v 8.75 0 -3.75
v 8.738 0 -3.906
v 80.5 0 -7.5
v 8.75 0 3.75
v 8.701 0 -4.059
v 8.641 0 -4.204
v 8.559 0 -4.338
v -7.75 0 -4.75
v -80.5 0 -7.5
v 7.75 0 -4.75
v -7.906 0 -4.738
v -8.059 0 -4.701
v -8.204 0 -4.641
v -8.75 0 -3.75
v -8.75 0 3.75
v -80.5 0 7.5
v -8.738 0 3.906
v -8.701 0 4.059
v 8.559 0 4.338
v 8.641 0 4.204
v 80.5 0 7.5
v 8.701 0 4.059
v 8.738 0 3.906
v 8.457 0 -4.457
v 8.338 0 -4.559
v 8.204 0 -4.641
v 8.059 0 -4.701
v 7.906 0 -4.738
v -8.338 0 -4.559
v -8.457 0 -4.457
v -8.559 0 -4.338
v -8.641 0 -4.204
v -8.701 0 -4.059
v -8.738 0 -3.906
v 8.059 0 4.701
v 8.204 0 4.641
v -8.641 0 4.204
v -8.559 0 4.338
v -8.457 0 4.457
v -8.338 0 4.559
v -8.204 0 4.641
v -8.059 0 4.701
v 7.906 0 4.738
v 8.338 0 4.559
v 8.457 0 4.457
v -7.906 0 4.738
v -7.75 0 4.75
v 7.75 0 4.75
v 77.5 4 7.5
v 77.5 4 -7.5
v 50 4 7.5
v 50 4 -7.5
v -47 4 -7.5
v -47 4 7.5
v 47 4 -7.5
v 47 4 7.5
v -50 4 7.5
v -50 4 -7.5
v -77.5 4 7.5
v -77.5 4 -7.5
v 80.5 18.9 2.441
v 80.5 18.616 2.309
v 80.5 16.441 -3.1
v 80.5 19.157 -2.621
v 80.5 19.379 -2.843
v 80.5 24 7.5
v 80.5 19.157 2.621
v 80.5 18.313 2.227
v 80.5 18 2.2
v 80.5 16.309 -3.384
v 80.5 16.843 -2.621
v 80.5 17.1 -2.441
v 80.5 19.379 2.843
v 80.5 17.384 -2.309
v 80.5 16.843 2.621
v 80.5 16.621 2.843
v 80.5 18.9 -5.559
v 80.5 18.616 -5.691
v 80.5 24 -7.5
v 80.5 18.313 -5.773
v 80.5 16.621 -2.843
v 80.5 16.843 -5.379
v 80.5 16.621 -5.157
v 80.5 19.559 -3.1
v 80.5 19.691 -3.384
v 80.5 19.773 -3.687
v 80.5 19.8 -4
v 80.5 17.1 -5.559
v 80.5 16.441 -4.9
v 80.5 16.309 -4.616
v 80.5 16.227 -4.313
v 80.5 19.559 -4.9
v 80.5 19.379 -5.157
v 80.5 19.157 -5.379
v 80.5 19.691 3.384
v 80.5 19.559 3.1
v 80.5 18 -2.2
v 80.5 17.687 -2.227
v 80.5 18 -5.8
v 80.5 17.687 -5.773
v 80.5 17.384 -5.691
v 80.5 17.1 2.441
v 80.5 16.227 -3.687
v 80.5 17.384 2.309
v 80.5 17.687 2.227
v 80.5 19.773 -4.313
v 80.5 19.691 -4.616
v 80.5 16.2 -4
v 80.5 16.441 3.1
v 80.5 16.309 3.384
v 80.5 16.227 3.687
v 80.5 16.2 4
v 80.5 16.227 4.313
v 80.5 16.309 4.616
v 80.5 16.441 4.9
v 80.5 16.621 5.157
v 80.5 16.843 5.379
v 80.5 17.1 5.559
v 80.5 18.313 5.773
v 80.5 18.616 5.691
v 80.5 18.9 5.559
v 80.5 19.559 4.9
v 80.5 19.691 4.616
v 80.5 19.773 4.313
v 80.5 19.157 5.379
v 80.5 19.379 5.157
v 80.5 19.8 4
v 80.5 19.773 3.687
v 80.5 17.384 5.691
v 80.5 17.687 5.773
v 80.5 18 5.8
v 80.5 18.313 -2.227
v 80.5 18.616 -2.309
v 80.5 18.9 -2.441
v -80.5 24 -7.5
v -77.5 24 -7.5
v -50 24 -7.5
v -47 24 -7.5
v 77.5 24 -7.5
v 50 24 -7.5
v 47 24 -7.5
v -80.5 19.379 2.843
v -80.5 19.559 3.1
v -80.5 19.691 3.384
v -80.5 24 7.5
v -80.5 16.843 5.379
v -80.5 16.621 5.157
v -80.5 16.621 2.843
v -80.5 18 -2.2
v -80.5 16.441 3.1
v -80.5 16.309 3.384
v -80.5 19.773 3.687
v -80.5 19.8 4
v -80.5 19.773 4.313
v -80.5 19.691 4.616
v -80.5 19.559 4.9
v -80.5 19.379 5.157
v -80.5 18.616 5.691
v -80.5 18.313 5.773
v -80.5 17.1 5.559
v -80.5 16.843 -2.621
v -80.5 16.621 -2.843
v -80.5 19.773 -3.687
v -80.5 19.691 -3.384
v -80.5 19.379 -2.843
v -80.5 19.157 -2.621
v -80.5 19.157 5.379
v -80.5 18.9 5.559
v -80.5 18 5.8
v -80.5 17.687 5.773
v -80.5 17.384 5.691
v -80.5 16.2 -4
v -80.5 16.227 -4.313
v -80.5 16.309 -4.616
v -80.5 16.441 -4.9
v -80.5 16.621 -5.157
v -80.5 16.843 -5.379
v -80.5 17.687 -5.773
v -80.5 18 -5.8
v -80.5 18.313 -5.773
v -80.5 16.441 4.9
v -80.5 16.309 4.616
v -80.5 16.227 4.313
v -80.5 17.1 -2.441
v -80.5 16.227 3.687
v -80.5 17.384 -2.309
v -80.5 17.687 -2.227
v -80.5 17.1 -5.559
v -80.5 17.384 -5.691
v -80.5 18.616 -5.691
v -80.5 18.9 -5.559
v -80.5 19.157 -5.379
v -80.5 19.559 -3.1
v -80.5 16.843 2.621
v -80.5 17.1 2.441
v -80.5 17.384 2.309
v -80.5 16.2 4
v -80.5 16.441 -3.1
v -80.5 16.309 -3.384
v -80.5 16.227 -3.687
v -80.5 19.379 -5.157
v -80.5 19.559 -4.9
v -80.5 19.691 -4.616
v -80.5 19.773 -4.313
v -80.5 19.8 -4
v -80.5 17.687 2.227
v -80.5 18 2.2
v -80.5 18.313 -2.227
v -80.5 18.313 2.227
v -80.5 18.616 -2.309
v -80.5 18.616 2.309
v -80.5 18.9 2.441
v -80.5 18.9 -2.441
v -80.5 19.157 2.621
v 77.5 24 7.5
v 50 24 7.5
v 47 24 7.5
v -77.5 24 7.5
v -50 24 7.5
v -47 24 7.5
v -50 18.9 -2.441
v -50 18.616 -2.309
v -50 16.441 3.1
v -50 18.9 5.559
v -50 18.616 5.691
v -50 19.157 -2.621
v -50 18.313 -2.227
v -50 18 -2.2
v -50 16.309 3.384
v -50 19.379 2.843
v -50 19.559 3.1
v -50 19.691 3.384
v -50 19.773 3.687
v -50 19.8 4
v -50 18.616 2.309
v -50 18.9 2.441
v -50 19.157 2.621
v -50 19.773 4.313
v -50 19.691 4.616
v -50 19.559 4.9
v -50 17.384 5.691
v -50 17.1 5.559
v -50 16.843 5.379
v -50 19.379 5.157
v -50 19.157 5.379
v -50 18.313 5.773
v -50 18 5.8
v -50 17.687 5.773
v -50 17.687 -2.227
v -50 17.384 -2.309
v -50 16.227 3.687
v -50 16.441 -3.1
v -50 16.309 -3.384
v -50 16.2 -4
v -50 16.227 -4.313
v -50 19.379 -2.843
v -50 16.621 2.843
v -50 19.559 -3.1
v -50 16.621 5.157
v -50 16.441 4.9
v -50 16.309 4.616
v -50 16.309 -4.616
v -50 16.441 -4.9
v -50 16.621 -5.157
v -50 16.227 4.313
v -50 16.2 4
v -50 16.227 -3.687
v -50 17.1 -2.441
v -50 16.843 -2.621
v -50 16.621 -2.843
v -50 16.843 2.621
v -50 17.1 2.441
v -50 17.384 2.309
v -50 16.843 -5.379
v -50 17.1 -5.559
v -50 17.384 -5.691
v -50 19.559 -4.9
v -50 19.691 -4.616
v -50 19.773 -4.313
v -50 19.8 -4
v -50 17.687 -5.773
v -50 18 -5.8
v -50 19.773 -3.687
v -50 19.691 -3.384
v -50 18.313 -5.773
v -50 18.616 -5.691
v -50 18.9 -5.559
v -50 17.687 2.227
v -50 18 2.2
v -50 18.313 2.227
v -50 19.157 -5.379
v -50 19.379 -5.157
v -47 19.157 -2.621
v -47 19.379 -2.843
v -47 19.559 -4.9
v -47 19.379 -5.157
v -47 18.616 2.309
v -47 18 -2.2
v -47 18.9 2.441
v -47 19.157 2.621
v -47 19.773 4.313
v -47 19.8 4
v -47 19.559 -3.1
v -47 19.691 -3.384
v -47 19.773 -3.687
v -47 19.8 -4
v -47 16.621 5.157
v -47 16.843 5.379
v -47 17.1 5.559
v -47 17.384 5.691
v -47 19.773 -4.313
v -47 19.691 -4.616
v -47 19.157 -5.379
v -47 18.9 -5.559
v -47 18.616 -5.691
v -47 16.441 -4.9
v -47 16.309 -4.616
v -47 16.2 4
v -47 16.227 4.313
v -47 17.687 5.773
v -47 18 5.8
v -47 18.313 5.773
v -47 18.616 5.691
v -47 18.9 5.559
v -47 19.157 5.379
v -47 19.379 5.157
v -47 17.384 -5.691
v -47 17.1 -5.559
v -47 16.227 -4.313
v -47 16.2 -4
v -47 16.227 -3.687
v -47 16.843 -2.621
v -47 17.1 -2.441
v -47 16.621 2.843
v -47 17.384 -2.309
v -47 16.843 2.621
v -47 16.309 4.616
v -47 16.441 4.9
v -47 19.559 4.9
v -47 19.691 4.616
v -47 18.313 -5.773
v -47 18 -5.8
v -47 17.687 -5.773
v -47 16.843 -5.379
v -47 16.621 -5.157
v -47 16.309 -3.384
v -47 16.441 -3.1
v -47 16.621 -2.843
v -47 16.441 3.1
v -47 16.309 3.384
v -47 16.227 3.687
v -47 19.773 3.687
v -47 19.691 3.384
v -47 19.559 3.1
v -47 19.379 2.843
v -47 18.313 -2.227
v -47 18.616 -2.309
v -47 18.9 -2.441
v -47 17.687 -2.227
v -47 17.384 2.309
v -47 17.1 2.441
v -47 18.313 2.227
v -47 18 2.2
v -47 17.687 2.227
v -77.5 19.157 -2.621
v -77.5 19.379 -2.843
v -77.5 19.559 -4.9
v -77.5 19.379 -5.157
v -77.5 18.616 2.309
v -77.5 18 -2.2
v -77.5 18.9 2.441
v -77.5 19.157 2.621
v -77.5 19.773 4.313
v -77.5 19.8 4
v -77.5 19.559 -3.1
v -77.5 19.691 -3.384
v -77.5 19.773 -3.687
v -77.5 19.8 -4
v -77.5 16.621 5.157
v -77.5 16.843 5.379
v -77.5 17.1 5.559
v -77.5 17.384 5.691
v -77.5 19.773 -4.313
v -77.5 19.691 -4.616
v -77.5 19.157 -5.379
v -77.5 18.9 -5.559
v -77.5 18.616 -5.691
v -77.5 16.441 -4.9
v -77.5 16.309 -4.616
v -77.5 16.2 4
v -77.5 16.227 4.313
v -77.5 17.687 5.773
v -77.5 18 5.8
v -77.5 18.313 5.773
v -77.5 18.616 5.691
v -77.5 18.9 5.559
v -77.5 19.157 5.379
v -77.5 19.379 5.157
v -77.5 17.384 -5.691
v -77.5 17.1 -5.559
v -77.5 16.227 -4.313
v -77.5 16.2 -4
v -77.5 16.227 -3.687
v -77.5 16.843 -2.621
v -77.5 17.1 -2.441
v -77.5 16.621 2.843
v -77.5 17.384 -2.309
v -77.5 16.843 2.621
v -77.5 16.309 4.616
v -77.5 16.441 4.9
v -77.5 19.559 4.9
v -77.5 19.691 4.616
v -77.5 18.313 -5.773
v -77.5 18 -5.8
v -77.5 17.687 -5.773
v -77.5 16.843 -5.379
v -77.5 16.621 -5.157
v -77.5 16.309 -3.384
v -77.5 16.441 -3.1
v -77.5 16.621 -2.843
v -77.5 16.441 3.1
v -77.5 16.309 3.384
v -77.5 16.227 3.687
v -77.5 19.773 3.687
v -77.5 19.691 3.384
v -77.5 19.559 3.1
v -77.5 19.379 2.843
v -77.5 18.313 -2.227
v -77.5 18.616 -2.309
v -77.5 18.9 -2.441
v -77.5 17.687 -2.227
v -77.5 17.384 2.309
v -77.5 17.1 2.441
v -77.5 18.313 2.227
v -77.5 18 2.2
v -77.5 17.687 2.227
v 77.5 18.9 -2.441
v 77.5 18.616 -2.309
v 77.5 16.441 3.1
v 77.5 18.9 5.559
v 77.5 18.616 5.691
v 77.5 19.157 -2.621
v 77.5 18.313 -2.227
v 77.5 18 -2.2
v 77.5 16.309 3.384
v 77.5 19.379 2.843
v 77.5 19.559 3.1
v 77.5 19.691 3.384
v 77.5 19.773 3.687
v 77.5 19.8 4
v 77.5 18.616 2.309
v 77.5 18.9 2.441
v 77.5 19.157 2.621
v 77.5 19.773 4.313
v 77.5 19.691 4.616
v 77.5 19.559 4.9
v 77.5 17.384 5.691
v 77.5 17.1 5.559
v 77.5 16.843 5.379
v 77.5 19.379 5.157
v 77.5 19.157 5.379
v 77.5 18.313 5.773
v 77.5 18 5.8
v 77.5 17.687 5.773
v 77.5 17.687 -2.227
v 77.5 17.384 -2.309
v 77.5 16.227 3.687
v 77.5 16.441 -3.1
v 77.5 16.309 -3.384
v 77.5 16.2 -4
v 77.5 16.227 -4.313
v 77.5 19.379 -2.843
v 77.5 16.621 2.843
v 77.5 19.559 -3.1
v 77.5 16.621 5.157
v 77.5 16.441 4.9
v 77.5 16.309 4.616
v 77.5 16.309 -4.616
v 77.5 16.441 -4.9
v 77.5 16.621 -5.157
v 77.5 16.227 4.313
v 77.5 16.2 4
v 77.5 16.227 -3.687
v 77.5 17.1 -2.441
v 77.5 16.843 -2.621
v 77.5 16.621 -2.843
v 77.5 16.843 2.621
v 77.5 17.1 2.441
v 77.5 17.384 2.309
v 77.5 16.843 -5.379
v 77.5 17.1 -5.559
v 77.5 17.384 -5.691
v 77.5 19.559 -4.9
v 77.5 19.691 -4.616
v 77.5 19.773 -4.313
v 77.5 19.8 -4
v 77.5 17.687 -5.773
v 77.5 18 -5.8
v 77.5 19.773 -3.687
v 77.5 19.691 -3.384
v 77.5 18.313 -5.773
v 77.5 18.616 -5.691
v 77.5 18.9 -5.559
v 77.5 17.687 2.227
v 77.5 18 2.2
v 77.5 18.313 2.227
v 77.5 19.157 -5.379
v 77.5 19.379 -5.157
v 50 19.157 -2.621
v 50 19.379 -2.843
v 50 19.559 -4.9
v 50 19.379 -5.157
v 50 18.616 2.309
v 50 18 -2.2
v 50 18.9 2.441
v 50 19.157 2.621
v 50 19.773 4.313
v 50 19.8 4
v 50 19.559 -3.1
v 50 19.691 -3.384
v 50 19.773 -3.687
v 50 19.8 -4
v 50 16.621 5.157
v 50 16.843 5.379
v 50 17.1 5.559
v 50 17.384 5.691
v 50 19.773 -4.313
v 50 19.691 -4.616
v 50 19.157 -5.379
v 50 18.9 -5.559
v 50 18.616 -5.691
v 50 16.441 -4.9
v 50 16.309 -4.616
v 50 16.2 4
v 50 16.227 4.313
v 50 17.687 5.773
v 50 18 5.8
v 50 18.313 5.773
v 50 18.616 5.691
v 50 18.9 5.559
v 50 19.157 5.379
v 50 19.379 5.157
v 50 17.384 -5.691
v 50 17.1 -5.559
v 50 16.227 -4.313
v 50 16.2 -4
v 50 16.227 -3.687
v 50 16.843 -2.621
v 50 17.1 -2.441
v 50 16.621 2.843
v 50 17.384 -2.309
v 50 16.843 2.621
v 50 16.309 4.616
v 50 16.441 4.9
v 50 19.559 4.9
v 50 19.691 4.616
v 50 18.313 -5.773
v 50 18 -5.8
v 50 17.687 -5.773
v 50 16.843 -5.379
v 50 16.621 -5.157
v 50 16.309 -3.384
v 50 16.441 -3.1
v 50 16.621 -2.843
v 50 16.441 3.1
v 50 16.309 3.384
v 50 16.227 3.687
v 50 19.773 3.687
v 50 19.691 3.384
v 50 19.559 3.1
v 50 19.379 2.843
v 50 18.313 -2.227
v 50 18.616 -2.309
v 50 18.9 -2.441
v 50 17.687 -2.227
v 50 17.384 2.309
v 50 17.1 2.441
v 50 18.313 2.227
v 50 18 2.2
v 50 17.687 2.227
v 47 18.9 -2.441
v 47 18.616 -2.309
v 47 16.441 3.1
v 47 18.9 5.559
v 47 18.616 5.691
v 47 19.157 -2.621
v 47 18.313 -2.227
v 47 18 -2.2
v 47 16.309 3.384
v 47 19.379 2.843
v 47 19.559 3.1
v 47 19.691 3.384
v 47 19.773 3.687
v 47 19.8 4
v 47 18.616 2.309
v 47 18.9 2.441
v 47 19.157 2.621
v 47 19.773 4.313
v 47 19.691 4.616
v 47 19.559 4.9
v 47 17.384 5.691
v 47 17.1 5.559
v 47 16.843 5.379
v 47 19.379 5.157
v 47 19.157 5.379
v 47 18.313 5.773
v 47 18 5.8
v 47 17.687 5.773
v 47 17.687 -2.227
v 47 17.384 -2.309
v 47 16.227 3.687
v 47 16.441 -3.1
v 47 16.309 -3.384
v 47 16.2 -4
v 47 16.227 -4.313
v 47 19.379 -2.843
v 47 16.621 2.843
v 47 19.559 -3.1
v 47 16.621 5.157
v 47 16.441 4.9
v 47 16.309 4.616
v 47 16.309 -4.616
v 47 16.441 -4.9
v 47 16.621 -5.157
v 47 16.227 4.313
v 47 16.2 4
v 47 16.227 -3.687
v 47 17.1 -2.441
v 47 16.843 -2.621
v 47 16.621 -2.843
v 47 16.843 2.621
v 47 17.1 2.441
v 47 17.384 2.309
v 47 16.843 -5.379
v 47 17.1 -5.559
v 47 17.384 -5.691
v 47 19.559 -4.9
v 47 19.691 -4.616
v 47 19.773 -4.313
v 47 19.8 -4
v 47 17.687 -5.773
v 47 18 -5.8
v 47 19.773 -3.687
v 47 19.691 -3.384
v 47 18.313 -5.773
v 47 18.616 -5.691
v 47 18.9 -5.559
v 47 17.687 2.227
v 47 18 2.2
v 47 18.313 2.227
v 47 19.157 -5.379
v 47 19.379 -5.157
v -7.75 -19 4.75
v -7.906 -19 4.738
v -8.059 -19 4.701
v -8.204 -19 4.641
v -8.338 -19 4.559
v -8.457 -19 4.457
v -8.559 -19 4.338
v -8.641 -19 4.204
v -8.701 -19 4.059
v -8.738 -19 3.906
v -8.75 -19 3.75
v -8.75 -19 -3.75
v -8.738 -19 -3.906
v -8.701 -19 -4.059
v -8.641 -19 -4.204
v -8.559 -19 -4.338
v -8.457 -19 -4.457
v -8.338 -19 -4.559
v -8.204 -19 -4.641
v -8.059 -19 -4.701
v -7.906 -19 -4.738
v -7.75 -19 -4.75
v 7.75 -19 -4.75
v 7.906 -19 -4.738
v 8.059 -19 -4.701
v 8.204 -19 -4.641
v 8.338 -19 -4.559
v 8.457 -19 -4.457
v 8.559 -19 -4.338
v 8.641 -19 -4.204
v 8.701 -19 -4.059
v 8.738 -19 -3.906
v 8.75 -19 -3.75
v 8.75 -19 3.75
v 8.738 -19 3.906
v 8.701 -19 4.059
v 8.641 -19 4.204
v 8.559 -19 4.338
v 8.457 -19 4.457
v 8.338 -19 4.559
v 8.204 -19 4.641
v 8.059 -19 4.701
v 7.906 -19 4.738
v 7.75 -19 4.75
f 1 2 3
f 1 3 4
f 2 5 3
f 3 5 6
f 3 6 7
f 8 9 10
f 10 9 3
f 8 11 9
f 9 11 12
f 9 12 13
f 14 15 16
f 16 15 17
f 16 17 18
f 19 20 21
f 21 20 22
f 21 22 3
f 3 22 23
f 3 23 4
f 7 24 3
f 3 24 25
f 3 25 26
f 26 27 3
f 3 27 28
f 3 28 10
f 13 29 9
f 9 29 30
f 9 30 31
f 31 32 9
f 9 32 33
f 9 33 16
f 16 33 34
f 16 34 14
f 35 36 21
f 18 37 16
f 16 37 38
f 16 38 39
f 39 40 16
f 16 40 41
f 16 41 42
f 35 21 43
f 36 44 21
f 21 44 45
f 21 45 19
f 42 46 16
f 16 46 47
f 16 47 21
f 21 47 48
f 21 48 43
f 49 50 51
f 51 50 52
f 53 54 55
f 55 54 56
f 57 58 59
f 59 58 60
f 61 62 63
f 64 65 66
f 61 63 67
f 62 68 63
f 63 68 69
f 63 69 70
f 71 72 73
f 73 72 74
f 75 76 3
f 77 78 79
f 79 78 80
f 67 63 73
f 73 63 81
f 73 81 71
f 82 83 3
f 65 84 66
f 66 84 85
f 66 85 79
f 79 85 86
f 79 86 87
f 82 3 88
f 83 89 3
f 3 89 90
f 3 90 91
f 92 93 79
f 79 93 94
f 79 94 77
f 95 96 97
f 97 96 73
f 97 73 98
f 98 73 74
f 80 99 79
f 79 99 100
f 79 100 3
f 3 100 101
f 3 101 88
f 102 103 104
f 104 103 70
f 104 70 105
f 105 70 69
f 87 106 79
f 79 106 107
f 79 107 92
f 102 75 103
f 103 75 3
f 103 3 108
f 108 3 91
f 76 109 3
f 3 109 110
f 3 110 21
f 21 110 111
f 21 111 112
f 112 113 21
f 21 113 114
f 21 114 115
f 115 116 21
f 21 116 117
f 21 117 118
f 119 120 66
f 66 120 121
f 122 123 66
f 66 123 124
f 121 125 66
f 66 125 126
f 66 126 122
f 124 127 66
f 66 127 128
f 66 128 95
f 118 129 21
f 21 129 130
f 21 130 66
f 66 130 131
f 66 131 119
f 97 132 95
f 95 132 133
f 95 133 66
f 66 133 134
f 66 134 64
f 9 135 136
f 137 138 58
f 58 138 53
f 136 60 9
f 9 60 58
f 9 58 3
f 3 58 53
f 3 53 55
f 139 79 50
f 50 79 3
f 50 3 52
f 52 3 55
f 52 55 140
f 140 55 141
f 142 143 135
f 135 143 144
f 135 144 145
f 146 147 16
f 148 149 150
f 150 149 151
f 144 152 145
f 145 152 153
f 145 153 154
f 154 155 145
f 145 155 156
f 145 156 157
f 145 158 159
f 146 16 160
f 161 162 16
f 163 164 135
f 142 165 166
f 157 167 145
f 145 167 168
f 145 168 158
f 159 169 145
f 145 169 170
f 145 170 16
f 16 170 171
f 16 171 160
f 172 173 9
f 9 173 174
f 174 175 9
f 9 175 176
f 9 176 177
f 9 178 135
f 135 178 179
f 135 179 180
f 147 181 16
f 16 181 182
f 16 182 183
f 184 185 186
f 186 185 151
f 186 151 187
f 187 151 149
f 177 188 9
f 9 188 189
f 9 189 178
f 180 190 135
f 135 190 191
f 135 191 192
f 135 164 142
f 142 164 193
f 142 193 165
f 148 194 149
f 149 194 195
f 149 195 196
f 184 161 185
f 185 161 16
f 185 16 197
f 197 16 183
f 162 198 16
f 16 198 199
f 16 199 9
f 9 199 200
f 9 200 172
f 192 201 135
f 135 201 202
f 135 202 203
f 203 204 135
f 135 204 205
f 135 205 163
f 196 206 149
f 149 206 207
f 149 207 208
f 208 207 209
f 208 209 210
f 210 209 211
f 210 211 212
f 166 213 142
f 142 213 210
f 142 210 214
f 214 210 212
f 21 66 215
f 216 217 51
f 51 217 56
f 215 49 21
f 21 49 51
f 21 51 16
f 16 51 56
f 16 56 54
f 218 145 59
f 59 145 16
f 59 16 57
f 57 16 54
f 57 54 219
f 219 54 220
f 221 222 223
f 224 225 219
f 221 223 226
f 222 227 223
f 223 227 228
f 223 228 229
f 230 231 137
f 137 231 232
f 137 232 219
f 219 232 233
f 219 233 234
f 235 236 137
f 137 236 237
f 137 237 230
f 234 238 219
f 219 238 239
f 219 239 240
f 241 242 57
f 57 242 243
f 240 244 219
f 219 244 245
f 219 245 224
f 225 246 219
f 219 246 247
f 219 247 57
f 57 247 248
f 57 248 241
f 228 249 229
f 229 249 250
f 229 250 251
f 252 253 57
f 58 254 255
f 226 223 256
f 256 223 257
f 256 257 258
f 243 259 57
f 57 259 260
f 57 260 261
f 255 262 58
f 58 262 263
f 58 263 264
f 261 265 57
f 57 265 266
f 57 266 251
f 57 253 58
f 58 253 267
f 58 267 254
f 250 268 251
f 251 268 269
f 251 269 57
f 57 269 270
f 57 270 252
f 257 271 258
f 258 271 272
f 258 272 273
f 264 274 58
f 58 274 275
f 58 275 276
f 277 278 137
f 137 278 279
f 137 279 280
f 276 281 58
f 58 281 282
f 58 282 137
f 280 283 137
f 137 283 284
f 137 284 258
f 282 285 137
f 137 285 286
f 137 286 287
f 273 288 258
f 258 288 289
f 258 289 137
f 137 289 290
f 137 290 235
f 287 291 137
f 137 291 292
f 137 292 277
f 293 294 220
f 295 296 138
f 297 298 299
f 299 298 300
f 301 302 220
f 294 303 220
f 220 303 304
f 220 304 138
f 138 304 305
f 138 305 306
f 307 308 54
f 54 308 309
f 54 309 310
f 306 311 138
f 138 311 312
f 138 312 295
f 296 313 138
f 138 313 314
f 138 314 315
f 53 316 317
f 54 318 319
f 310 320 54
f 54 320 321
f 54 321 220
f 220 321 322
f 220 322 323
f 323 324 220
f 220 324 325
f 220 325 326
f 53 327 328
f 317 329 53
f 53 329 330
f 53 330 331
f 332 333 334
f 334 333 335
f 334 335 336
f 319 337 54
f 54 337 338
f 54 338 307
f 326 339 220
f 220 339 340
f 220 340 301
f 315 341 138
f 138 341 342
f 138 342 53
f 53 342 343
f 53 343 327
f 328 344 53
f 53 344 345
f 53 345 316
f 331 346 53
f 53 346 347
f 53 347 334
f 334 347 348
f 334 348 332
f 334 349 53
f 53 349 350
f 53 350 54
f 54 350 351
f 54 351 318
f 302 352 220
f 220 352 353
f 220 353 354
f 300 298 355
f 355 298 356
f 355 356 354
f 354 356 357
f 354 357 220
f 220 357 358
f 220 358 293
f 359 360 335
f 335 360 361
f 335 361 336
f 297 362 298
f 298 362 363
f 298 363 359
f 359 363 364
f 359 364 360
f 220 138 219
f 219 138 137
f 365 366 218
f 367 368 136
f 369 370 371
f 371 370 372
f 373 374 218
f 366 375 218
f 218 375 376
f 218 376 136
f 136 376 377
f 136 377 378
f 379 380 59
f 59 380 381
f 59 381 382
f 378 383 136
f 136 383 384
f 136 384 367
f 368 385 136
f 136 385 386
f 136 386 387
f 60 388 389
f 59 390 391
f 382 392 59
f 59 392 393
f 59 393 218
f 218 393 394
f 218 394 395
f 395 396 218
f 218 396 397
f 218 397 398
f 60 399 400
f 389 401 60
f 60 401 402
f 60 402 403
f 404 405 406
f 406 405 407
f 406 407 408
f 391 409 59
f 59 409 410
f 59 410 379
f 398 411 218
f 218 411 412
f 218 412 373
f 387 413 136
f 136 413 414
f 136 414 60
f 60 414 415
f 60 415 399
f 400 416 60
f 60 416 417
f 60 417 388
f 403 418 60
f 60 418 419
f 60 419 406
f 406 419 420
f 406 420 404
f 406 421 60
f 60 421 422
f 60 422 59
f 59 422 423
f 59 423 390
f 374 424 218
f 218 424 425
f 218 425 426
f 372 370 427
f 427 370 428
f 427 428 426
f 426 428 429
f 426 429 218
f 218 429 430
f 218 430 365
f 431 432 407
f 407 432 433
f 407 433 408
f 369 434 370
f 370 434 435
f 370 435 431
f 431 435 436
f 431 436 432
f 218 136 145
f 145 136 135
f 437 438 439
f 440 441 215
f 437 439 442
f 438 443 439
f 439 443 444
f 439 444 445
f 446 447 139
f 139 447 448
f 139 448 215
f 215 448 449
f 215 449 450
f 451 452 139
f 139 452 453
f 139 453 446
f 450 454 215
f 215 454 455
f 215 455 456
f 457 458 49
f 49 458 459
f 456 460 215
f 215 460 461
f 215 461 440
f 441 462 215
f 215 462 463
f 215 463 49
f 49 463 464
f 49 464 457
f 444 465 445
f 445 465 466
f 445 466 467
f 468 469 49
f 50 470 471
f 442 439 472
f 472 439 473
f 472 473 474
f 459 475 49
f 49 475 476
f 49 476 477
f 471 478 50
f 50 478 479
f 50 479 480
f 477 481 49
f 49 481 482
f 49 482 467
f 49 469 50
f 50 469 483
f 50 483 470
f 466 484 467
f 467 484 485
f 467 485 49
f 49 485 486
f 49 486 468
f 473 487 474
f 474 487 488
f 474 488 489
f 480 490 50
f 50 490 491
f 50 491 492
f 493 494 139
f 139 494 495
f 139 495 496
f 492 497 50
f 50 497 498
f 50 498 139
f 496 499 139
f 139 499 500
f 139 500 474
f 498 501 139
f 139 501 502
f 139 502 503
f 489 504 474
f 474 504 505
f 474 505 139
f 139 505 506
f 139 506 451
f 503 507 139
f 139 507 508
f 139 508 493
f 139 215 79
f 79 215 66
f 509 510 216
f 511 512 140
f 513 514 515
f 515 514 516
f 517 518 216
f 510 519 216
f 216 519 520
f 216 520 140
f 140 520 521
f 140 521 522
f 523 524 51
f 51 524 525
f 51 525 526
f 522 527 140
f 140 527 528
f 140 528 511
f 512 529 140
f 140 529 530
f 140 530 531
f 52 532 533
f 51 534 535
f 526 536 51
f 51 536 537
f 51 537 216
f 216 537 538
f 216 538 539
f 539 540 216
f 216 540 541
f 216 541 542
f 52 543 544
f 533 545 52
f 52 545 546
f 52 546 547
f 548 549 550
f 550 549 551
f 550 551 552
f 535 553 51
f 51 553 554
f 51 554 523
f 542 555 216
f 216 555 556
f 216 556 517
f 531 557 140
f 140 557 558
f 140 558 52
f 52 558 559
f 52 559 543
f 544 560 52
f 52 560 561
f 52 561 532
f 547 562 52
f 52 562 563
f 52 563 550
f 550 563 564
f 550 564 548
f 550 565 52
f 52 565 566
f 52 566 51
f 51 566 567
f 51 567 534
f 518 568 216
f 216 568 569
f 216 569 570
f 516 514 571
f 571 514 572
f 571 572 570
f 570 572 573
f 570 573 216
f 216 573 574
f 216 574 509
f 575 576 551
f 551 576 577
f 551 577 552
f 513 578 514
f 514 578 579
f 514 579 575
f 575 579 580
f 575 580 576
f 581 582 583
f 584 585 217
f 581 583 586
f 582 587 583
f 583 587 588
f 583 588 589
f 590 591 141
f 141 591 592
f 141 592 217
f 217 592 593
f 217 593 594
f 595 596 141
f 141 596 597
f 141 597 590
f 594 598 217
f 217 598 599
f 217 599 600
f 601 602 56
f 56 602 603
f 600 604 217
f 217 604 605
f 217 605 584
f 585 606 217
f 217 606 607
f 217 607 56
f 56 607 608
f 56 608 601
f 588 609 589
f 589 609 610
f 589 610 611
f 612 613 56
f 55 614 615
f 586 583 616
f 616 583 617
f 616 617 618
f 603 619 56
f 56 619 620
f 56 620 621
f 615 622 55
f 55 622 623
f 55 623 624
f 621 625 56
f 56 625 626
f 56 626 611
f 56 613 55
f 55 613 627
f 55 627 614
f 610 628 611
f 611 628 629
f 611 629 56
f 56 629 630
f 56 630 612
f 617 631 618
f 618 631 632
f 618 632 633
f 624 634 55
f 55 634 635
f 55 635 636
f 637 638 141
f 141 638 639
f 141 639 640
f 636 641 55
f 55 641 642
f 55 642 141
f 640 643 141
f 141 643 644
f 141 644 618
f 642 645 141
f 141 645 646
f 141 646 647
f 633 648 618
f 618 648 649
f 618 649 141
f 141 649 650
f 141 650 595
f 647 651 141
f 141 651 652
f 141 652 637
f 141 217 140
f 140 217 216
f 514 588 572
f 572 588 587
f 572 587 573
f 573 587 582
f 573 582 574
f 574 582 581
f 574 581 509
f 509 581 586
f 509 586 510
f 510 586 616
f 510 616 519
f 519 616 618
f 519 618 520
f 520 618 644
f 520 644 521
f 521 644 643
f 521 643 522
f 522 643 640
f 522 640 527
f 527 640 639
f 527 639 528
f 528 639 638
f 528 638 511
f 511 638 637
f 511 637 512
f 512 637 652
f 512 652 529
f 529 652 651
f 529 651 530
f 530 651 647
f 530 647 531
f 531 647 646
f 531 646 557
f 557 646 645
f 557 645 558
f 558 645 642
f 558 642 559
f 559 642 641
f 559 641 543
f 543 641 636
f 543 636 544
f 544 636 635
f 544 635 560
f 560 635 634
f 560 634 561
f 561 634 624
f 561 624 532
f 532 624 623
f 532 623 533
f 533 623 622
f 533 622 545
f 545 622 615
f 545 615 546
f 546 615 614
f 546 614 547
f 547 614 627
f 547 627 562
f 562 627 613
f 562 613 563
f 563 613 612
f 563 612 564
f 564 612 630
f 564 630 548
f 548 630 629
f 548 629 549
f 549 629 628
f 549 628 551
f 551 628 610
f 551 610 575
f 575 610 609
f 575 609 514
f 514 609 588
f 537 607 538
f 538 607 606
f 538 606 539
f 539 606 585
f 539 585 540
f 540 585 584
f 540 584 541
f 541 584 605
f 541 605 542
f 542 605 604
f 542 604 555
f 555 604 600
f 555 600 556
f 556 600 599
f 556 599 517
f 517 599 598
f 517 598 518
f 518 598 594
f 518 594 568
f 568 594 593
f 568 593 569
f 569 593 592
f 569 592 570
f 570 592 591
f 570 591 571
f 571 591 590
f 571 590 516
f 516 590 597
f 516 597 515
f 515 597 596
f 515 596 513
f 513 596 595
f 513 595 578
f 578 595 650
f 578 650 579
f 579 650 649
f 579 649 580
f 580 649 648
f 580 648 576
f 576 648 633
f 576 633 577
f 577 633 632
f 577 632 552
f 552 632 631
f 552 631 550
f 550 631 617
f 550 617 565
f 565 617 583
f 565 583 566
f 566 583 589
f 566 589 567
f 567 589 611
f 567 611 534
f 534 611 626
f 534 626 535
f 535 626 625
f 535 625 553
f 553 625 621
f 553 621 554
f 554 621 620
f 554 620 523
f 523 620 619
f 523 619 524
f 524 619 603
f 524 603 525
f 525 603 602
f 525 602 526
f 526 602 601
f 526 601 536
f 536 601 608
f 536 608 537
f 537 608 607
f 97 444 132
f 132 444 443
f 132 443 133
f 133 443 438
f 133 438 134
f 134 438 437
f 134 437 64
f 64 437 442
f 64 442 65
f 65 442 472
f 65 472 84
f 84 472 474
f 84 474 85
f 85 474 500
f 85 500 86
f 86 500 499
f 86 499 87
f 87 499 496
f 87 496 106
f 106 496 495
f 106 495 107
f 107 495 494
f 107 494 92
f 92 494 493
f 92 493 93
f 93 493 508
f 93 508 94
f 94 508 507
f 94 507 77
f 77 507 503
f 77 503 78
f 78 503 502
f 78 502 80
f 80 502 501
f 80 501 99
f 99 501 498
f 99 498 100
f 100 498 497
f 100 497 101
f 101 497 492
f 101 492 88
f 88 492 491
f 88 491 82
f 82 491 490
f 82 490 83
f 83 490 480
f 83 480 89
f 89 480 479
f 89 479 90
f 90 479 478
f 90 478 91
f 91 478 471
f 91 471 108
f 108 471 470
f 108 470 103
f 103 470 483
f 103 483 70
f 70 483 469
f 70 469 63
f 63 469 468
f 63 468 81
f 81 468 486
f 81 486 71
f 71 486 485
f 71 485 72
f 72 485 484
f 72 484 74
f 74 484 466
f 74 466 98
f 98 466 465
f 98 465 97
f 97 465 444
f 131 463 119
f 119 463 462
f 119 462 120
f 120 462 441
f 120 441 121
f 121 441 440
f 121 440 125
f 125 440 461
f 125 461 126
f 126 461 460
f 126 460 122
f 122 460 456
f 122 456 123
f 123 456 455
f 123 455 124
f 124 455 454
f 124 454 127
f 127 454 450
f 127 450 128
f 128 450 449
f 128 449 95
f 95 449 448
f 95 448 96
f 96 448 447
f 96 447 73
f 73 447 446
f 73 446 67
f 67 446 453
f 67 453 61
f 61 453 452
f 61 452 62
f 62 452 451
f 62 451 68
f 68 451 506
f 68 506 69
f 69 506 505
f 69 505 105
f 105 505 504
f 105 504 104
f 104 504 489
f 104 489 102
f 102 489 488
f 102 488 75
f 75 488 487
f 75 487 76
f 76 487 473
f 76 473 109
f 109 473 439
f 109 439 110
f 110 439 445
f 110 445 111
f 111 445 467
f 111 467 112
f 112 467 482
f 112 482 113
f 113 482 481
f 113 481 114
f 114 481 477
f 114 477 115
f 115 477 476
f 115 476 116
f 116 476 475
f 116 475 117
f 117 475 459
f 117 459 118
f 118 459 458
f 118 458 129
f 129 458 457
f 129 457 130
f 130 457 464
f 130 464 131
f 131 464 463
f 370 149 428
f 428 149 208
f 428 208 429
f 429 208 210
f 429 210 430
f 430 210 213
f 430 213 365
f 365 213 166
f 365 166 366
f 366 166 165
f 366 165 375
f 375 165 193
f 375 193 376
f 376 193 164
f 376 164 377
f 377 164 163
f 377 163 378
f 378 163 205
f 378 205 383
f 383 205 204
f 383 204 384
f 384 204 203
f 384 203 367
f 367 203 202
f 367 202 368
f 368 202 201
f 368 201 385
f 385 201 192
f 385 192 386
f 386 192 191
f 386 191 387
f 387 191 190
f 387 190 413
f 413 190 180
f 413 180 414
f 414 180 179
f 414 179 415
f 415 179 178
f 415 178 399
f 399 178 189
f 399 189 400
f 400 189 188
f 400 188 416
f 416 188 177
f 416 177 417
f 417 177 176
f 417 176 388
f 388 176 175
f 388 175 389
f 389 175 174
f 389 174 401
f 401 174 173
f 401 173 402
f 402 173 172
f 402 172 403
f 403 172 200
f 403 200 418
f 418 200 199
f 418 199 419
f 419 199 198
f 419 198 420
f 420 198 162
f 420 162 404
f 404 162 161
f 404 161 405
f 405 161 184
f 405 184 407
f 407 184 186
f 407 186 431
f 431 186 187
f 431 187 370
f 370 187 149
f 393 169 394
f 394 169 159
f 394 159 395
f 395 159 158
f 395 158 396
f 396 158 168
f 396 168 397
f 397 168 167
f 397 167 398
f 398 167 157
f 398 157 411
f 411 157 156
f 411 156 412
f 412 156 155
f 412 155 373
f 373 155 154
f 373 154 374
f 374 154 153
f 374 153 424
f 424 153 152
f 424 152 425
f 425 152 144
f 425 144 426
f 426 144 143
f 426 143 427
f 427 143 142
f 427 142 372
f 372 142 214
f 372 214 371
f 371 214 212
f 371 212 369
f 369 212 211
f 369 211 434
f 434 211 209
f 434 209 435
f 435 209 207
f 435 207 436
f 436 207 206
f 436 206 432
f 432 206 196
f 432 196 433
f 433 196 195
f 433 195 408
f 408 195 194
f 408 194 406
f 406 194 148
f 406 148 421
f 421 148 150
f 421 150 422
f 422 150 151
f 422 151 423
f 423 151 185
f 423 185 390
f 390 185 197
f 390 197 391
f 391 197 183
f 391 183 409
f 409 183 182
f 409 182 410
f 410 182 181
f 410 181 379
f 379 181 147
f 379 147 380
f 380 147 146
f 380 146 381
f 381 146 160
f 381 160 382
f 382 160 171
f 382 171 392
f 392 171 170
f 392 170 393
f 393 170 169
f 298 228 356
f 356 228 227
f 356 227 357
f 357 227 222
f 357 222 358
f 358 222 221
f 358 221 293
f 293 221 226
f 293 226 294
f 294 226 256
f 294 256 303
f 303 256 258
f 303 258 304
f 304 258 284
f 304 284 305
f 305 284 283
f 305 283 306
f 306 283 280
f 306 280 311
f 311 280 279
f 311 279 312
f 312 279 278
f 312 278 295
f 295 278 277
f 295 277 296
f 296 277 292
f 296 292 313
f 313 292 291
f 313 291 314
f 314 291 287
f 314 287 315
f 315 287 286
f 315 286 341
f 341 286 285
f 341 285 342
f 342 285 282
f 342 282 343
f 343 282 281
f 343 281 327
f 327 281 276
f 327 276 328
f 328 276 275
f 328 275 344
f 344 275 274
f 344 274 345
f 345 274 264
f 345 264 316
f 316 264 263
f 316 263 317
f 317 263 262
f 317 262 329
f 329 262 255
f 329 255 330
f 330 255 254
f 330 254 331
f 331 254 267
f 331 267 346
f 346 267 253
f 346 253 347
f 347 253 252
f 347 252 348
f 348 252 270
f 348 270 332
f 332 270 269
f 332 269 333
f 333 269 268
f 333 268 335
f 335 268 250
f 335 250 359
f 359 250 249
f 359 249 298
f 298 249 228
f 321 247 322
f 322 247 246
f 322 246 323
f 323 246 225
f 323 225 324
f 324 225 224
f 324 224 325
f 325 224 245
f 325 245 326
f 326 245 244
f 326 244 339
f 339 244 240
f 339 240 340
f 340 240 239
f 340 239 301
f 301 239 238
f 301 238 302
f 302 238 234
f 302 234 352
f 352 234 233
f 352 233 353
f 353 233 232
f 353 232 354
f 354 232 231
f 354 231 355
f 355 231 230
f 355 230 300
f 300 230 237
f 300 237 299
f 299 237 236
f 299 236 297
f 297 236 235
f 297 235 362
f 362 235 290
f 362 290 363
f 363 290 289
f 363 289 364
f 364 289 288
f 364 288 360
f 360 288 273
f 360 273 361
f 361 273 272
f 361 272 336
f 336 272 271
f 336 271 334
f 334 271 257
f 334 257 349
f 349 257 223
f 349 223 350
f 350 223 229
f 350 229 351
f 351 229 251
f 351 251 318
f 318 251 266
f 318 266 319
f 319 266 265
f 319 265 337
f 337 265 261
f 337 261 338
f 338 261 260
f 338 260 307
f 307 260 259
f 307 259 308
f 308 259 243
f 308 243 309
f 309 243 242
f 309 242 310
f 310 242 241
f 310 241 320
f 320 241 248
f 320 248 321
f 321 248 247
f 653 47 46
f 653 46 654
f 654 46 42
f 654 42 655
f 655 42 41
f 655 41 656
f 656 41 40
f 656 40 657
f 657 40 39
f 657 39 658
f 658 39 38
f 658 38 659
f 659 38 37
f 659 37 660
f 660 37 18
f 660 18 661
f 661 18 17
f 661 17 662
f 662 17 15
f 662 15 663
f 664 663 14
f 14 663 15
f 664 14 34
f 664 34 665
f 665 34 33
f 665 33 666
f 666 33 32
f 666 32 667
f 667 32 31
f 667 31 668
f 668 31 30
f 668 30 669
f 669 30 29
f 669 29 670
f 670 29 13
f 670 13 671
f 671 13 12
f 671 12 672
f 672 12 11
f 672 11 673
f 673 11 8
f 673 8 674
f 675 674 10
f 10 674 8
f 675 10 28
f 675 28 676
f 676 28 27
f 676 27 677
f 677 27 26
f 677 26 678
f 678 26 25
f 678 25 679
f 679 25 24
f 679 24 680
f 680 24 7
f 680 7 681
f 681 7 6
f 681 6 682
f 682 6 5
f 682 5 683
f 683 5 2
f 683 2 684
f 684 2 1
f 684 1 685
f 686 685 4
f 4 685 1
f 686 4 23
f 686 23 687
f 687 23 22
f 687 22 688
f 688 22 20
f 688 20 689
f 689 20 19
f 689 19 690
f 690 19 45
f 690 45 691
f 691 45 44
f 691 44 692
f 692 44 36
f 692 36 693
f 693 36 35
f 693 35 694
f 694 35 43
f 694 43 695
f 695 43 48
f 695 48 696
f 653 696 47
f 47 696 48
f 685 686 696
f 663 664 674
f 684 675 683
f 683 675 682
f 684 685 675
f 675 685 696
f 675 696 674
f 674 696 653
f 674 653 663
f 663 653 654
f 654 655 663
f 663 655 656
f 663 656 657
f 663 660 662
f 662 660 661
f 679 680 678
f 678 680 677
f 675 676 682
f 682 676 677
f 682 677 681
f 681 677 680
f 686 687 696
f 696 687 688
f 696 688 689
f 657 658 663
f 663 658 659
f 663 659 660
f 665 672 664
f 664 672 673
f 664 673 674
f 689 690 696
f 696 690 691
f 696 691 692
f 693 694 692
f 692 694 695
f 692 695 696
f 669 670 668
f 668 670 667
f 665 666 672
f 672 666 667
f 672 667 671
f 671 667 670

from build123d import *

# Parameters (mm, degrees)
SKETCH1_W               = 161
SKETCH1_H               = 15
BOSS_EXTRUDE1_DEPTH     = 4
SKETCH2_W               = 3
SKETCH2_H               = 15
BOSS_EXTRUDE2_DEPTH     = 20
SKETCH4_R               = 1.8
CUT_EXTRUDE2_DEPTH      = 1
CUT_EXTRUDE2_DEPTH_BACK = 162
BOSS_EXTRUDE3_DEPTH     = 19


with BuildPart() as part:
    # Sketch1 → Boss-Extrude1 (new body)
    with BuildSketch(Plane(origin=(0, 0, 0), x_dir=(1, 0, 0), z_dir=(0, 1, 0))):
        Rectangle(SKETCH1_W, SKETCH1_H)
    extrude(amount=BOSS_EXTRUDE1_DEPTH)

    # Sketch2 → Boss-Extrude2 (add)
    with BuildSketch(Plane(origin=(0, 4, 0), x_dir=(1, 0, 0), z_dir=(0, 1, 0))):
        with Locations((-48.5, 0)):
            Rectangle(SKETCH2_W, SKETCH2_H)
        with Locations((-79, 0)):
            Rectangle(SKETCH2_W, SKETCH2_H)
        with Locations((79, 0)):
            Rectangle(SKETCH2_W, SKETCH2_H)
        with Locations((48.5, 0)):
            Rectangle(SKETCH2_W, SKETCH2_H)
    extrude(amount=BOSS_EXTRUDE2_DEPTH)

    # Sketch4 → Cut-Extrude2 (cut, two sides)
    with BuildSketch(Plane.ZY.offset(80.5)) as cut_extrude2_sk:
        with Locations((4, 18)):
            Circle(SKETCH4_R)
        with Locations((-4, 18)):
            Circle(SKETCH4_R)
    extrude(amount=CUT_EXTRUDE2_DEPTH, mode=Mode.SUBTRACT)
    extrude(cut_extrude2_sk.sketch, amount=-CUT_EXTRUDE2_DEPTH_BACK, mode=Mode.SUBTRACT)

    # Sketch5 → Boss-Extrude3 (add)
    with BuildSketch(Plane.XZ):
        with BuildLine():
            Line((-7.75, -4.75), (7.75, -4.75))
            ThreePointArc((7.75, -4.75), (8.457106781, -4.457106781), (8.75, -3.75))
            Line((8.75, -3.75), (8.75, 3.75))
            ThreePointArc((8.75, 3.75), (8.457106781, 4.457106781), (7.75, 4.75))
            Line((7.75, 4.75), (-7.75, 4.75))
            ThreePointArc((-7.75, 4.75), (-8.457106781, 4.457106781), (-8.75, 3.75))
            Line((-8.75, 3.75), (-8.75, -3.75))
            ThreePointArc((-8.75, -3.75), (-8.457106781, -4.457106781), (-7.75, -4.75))
        make_face()
    extrude(amount=BOSS_EXTRUDE3_DEPTH)


solid = part.part
